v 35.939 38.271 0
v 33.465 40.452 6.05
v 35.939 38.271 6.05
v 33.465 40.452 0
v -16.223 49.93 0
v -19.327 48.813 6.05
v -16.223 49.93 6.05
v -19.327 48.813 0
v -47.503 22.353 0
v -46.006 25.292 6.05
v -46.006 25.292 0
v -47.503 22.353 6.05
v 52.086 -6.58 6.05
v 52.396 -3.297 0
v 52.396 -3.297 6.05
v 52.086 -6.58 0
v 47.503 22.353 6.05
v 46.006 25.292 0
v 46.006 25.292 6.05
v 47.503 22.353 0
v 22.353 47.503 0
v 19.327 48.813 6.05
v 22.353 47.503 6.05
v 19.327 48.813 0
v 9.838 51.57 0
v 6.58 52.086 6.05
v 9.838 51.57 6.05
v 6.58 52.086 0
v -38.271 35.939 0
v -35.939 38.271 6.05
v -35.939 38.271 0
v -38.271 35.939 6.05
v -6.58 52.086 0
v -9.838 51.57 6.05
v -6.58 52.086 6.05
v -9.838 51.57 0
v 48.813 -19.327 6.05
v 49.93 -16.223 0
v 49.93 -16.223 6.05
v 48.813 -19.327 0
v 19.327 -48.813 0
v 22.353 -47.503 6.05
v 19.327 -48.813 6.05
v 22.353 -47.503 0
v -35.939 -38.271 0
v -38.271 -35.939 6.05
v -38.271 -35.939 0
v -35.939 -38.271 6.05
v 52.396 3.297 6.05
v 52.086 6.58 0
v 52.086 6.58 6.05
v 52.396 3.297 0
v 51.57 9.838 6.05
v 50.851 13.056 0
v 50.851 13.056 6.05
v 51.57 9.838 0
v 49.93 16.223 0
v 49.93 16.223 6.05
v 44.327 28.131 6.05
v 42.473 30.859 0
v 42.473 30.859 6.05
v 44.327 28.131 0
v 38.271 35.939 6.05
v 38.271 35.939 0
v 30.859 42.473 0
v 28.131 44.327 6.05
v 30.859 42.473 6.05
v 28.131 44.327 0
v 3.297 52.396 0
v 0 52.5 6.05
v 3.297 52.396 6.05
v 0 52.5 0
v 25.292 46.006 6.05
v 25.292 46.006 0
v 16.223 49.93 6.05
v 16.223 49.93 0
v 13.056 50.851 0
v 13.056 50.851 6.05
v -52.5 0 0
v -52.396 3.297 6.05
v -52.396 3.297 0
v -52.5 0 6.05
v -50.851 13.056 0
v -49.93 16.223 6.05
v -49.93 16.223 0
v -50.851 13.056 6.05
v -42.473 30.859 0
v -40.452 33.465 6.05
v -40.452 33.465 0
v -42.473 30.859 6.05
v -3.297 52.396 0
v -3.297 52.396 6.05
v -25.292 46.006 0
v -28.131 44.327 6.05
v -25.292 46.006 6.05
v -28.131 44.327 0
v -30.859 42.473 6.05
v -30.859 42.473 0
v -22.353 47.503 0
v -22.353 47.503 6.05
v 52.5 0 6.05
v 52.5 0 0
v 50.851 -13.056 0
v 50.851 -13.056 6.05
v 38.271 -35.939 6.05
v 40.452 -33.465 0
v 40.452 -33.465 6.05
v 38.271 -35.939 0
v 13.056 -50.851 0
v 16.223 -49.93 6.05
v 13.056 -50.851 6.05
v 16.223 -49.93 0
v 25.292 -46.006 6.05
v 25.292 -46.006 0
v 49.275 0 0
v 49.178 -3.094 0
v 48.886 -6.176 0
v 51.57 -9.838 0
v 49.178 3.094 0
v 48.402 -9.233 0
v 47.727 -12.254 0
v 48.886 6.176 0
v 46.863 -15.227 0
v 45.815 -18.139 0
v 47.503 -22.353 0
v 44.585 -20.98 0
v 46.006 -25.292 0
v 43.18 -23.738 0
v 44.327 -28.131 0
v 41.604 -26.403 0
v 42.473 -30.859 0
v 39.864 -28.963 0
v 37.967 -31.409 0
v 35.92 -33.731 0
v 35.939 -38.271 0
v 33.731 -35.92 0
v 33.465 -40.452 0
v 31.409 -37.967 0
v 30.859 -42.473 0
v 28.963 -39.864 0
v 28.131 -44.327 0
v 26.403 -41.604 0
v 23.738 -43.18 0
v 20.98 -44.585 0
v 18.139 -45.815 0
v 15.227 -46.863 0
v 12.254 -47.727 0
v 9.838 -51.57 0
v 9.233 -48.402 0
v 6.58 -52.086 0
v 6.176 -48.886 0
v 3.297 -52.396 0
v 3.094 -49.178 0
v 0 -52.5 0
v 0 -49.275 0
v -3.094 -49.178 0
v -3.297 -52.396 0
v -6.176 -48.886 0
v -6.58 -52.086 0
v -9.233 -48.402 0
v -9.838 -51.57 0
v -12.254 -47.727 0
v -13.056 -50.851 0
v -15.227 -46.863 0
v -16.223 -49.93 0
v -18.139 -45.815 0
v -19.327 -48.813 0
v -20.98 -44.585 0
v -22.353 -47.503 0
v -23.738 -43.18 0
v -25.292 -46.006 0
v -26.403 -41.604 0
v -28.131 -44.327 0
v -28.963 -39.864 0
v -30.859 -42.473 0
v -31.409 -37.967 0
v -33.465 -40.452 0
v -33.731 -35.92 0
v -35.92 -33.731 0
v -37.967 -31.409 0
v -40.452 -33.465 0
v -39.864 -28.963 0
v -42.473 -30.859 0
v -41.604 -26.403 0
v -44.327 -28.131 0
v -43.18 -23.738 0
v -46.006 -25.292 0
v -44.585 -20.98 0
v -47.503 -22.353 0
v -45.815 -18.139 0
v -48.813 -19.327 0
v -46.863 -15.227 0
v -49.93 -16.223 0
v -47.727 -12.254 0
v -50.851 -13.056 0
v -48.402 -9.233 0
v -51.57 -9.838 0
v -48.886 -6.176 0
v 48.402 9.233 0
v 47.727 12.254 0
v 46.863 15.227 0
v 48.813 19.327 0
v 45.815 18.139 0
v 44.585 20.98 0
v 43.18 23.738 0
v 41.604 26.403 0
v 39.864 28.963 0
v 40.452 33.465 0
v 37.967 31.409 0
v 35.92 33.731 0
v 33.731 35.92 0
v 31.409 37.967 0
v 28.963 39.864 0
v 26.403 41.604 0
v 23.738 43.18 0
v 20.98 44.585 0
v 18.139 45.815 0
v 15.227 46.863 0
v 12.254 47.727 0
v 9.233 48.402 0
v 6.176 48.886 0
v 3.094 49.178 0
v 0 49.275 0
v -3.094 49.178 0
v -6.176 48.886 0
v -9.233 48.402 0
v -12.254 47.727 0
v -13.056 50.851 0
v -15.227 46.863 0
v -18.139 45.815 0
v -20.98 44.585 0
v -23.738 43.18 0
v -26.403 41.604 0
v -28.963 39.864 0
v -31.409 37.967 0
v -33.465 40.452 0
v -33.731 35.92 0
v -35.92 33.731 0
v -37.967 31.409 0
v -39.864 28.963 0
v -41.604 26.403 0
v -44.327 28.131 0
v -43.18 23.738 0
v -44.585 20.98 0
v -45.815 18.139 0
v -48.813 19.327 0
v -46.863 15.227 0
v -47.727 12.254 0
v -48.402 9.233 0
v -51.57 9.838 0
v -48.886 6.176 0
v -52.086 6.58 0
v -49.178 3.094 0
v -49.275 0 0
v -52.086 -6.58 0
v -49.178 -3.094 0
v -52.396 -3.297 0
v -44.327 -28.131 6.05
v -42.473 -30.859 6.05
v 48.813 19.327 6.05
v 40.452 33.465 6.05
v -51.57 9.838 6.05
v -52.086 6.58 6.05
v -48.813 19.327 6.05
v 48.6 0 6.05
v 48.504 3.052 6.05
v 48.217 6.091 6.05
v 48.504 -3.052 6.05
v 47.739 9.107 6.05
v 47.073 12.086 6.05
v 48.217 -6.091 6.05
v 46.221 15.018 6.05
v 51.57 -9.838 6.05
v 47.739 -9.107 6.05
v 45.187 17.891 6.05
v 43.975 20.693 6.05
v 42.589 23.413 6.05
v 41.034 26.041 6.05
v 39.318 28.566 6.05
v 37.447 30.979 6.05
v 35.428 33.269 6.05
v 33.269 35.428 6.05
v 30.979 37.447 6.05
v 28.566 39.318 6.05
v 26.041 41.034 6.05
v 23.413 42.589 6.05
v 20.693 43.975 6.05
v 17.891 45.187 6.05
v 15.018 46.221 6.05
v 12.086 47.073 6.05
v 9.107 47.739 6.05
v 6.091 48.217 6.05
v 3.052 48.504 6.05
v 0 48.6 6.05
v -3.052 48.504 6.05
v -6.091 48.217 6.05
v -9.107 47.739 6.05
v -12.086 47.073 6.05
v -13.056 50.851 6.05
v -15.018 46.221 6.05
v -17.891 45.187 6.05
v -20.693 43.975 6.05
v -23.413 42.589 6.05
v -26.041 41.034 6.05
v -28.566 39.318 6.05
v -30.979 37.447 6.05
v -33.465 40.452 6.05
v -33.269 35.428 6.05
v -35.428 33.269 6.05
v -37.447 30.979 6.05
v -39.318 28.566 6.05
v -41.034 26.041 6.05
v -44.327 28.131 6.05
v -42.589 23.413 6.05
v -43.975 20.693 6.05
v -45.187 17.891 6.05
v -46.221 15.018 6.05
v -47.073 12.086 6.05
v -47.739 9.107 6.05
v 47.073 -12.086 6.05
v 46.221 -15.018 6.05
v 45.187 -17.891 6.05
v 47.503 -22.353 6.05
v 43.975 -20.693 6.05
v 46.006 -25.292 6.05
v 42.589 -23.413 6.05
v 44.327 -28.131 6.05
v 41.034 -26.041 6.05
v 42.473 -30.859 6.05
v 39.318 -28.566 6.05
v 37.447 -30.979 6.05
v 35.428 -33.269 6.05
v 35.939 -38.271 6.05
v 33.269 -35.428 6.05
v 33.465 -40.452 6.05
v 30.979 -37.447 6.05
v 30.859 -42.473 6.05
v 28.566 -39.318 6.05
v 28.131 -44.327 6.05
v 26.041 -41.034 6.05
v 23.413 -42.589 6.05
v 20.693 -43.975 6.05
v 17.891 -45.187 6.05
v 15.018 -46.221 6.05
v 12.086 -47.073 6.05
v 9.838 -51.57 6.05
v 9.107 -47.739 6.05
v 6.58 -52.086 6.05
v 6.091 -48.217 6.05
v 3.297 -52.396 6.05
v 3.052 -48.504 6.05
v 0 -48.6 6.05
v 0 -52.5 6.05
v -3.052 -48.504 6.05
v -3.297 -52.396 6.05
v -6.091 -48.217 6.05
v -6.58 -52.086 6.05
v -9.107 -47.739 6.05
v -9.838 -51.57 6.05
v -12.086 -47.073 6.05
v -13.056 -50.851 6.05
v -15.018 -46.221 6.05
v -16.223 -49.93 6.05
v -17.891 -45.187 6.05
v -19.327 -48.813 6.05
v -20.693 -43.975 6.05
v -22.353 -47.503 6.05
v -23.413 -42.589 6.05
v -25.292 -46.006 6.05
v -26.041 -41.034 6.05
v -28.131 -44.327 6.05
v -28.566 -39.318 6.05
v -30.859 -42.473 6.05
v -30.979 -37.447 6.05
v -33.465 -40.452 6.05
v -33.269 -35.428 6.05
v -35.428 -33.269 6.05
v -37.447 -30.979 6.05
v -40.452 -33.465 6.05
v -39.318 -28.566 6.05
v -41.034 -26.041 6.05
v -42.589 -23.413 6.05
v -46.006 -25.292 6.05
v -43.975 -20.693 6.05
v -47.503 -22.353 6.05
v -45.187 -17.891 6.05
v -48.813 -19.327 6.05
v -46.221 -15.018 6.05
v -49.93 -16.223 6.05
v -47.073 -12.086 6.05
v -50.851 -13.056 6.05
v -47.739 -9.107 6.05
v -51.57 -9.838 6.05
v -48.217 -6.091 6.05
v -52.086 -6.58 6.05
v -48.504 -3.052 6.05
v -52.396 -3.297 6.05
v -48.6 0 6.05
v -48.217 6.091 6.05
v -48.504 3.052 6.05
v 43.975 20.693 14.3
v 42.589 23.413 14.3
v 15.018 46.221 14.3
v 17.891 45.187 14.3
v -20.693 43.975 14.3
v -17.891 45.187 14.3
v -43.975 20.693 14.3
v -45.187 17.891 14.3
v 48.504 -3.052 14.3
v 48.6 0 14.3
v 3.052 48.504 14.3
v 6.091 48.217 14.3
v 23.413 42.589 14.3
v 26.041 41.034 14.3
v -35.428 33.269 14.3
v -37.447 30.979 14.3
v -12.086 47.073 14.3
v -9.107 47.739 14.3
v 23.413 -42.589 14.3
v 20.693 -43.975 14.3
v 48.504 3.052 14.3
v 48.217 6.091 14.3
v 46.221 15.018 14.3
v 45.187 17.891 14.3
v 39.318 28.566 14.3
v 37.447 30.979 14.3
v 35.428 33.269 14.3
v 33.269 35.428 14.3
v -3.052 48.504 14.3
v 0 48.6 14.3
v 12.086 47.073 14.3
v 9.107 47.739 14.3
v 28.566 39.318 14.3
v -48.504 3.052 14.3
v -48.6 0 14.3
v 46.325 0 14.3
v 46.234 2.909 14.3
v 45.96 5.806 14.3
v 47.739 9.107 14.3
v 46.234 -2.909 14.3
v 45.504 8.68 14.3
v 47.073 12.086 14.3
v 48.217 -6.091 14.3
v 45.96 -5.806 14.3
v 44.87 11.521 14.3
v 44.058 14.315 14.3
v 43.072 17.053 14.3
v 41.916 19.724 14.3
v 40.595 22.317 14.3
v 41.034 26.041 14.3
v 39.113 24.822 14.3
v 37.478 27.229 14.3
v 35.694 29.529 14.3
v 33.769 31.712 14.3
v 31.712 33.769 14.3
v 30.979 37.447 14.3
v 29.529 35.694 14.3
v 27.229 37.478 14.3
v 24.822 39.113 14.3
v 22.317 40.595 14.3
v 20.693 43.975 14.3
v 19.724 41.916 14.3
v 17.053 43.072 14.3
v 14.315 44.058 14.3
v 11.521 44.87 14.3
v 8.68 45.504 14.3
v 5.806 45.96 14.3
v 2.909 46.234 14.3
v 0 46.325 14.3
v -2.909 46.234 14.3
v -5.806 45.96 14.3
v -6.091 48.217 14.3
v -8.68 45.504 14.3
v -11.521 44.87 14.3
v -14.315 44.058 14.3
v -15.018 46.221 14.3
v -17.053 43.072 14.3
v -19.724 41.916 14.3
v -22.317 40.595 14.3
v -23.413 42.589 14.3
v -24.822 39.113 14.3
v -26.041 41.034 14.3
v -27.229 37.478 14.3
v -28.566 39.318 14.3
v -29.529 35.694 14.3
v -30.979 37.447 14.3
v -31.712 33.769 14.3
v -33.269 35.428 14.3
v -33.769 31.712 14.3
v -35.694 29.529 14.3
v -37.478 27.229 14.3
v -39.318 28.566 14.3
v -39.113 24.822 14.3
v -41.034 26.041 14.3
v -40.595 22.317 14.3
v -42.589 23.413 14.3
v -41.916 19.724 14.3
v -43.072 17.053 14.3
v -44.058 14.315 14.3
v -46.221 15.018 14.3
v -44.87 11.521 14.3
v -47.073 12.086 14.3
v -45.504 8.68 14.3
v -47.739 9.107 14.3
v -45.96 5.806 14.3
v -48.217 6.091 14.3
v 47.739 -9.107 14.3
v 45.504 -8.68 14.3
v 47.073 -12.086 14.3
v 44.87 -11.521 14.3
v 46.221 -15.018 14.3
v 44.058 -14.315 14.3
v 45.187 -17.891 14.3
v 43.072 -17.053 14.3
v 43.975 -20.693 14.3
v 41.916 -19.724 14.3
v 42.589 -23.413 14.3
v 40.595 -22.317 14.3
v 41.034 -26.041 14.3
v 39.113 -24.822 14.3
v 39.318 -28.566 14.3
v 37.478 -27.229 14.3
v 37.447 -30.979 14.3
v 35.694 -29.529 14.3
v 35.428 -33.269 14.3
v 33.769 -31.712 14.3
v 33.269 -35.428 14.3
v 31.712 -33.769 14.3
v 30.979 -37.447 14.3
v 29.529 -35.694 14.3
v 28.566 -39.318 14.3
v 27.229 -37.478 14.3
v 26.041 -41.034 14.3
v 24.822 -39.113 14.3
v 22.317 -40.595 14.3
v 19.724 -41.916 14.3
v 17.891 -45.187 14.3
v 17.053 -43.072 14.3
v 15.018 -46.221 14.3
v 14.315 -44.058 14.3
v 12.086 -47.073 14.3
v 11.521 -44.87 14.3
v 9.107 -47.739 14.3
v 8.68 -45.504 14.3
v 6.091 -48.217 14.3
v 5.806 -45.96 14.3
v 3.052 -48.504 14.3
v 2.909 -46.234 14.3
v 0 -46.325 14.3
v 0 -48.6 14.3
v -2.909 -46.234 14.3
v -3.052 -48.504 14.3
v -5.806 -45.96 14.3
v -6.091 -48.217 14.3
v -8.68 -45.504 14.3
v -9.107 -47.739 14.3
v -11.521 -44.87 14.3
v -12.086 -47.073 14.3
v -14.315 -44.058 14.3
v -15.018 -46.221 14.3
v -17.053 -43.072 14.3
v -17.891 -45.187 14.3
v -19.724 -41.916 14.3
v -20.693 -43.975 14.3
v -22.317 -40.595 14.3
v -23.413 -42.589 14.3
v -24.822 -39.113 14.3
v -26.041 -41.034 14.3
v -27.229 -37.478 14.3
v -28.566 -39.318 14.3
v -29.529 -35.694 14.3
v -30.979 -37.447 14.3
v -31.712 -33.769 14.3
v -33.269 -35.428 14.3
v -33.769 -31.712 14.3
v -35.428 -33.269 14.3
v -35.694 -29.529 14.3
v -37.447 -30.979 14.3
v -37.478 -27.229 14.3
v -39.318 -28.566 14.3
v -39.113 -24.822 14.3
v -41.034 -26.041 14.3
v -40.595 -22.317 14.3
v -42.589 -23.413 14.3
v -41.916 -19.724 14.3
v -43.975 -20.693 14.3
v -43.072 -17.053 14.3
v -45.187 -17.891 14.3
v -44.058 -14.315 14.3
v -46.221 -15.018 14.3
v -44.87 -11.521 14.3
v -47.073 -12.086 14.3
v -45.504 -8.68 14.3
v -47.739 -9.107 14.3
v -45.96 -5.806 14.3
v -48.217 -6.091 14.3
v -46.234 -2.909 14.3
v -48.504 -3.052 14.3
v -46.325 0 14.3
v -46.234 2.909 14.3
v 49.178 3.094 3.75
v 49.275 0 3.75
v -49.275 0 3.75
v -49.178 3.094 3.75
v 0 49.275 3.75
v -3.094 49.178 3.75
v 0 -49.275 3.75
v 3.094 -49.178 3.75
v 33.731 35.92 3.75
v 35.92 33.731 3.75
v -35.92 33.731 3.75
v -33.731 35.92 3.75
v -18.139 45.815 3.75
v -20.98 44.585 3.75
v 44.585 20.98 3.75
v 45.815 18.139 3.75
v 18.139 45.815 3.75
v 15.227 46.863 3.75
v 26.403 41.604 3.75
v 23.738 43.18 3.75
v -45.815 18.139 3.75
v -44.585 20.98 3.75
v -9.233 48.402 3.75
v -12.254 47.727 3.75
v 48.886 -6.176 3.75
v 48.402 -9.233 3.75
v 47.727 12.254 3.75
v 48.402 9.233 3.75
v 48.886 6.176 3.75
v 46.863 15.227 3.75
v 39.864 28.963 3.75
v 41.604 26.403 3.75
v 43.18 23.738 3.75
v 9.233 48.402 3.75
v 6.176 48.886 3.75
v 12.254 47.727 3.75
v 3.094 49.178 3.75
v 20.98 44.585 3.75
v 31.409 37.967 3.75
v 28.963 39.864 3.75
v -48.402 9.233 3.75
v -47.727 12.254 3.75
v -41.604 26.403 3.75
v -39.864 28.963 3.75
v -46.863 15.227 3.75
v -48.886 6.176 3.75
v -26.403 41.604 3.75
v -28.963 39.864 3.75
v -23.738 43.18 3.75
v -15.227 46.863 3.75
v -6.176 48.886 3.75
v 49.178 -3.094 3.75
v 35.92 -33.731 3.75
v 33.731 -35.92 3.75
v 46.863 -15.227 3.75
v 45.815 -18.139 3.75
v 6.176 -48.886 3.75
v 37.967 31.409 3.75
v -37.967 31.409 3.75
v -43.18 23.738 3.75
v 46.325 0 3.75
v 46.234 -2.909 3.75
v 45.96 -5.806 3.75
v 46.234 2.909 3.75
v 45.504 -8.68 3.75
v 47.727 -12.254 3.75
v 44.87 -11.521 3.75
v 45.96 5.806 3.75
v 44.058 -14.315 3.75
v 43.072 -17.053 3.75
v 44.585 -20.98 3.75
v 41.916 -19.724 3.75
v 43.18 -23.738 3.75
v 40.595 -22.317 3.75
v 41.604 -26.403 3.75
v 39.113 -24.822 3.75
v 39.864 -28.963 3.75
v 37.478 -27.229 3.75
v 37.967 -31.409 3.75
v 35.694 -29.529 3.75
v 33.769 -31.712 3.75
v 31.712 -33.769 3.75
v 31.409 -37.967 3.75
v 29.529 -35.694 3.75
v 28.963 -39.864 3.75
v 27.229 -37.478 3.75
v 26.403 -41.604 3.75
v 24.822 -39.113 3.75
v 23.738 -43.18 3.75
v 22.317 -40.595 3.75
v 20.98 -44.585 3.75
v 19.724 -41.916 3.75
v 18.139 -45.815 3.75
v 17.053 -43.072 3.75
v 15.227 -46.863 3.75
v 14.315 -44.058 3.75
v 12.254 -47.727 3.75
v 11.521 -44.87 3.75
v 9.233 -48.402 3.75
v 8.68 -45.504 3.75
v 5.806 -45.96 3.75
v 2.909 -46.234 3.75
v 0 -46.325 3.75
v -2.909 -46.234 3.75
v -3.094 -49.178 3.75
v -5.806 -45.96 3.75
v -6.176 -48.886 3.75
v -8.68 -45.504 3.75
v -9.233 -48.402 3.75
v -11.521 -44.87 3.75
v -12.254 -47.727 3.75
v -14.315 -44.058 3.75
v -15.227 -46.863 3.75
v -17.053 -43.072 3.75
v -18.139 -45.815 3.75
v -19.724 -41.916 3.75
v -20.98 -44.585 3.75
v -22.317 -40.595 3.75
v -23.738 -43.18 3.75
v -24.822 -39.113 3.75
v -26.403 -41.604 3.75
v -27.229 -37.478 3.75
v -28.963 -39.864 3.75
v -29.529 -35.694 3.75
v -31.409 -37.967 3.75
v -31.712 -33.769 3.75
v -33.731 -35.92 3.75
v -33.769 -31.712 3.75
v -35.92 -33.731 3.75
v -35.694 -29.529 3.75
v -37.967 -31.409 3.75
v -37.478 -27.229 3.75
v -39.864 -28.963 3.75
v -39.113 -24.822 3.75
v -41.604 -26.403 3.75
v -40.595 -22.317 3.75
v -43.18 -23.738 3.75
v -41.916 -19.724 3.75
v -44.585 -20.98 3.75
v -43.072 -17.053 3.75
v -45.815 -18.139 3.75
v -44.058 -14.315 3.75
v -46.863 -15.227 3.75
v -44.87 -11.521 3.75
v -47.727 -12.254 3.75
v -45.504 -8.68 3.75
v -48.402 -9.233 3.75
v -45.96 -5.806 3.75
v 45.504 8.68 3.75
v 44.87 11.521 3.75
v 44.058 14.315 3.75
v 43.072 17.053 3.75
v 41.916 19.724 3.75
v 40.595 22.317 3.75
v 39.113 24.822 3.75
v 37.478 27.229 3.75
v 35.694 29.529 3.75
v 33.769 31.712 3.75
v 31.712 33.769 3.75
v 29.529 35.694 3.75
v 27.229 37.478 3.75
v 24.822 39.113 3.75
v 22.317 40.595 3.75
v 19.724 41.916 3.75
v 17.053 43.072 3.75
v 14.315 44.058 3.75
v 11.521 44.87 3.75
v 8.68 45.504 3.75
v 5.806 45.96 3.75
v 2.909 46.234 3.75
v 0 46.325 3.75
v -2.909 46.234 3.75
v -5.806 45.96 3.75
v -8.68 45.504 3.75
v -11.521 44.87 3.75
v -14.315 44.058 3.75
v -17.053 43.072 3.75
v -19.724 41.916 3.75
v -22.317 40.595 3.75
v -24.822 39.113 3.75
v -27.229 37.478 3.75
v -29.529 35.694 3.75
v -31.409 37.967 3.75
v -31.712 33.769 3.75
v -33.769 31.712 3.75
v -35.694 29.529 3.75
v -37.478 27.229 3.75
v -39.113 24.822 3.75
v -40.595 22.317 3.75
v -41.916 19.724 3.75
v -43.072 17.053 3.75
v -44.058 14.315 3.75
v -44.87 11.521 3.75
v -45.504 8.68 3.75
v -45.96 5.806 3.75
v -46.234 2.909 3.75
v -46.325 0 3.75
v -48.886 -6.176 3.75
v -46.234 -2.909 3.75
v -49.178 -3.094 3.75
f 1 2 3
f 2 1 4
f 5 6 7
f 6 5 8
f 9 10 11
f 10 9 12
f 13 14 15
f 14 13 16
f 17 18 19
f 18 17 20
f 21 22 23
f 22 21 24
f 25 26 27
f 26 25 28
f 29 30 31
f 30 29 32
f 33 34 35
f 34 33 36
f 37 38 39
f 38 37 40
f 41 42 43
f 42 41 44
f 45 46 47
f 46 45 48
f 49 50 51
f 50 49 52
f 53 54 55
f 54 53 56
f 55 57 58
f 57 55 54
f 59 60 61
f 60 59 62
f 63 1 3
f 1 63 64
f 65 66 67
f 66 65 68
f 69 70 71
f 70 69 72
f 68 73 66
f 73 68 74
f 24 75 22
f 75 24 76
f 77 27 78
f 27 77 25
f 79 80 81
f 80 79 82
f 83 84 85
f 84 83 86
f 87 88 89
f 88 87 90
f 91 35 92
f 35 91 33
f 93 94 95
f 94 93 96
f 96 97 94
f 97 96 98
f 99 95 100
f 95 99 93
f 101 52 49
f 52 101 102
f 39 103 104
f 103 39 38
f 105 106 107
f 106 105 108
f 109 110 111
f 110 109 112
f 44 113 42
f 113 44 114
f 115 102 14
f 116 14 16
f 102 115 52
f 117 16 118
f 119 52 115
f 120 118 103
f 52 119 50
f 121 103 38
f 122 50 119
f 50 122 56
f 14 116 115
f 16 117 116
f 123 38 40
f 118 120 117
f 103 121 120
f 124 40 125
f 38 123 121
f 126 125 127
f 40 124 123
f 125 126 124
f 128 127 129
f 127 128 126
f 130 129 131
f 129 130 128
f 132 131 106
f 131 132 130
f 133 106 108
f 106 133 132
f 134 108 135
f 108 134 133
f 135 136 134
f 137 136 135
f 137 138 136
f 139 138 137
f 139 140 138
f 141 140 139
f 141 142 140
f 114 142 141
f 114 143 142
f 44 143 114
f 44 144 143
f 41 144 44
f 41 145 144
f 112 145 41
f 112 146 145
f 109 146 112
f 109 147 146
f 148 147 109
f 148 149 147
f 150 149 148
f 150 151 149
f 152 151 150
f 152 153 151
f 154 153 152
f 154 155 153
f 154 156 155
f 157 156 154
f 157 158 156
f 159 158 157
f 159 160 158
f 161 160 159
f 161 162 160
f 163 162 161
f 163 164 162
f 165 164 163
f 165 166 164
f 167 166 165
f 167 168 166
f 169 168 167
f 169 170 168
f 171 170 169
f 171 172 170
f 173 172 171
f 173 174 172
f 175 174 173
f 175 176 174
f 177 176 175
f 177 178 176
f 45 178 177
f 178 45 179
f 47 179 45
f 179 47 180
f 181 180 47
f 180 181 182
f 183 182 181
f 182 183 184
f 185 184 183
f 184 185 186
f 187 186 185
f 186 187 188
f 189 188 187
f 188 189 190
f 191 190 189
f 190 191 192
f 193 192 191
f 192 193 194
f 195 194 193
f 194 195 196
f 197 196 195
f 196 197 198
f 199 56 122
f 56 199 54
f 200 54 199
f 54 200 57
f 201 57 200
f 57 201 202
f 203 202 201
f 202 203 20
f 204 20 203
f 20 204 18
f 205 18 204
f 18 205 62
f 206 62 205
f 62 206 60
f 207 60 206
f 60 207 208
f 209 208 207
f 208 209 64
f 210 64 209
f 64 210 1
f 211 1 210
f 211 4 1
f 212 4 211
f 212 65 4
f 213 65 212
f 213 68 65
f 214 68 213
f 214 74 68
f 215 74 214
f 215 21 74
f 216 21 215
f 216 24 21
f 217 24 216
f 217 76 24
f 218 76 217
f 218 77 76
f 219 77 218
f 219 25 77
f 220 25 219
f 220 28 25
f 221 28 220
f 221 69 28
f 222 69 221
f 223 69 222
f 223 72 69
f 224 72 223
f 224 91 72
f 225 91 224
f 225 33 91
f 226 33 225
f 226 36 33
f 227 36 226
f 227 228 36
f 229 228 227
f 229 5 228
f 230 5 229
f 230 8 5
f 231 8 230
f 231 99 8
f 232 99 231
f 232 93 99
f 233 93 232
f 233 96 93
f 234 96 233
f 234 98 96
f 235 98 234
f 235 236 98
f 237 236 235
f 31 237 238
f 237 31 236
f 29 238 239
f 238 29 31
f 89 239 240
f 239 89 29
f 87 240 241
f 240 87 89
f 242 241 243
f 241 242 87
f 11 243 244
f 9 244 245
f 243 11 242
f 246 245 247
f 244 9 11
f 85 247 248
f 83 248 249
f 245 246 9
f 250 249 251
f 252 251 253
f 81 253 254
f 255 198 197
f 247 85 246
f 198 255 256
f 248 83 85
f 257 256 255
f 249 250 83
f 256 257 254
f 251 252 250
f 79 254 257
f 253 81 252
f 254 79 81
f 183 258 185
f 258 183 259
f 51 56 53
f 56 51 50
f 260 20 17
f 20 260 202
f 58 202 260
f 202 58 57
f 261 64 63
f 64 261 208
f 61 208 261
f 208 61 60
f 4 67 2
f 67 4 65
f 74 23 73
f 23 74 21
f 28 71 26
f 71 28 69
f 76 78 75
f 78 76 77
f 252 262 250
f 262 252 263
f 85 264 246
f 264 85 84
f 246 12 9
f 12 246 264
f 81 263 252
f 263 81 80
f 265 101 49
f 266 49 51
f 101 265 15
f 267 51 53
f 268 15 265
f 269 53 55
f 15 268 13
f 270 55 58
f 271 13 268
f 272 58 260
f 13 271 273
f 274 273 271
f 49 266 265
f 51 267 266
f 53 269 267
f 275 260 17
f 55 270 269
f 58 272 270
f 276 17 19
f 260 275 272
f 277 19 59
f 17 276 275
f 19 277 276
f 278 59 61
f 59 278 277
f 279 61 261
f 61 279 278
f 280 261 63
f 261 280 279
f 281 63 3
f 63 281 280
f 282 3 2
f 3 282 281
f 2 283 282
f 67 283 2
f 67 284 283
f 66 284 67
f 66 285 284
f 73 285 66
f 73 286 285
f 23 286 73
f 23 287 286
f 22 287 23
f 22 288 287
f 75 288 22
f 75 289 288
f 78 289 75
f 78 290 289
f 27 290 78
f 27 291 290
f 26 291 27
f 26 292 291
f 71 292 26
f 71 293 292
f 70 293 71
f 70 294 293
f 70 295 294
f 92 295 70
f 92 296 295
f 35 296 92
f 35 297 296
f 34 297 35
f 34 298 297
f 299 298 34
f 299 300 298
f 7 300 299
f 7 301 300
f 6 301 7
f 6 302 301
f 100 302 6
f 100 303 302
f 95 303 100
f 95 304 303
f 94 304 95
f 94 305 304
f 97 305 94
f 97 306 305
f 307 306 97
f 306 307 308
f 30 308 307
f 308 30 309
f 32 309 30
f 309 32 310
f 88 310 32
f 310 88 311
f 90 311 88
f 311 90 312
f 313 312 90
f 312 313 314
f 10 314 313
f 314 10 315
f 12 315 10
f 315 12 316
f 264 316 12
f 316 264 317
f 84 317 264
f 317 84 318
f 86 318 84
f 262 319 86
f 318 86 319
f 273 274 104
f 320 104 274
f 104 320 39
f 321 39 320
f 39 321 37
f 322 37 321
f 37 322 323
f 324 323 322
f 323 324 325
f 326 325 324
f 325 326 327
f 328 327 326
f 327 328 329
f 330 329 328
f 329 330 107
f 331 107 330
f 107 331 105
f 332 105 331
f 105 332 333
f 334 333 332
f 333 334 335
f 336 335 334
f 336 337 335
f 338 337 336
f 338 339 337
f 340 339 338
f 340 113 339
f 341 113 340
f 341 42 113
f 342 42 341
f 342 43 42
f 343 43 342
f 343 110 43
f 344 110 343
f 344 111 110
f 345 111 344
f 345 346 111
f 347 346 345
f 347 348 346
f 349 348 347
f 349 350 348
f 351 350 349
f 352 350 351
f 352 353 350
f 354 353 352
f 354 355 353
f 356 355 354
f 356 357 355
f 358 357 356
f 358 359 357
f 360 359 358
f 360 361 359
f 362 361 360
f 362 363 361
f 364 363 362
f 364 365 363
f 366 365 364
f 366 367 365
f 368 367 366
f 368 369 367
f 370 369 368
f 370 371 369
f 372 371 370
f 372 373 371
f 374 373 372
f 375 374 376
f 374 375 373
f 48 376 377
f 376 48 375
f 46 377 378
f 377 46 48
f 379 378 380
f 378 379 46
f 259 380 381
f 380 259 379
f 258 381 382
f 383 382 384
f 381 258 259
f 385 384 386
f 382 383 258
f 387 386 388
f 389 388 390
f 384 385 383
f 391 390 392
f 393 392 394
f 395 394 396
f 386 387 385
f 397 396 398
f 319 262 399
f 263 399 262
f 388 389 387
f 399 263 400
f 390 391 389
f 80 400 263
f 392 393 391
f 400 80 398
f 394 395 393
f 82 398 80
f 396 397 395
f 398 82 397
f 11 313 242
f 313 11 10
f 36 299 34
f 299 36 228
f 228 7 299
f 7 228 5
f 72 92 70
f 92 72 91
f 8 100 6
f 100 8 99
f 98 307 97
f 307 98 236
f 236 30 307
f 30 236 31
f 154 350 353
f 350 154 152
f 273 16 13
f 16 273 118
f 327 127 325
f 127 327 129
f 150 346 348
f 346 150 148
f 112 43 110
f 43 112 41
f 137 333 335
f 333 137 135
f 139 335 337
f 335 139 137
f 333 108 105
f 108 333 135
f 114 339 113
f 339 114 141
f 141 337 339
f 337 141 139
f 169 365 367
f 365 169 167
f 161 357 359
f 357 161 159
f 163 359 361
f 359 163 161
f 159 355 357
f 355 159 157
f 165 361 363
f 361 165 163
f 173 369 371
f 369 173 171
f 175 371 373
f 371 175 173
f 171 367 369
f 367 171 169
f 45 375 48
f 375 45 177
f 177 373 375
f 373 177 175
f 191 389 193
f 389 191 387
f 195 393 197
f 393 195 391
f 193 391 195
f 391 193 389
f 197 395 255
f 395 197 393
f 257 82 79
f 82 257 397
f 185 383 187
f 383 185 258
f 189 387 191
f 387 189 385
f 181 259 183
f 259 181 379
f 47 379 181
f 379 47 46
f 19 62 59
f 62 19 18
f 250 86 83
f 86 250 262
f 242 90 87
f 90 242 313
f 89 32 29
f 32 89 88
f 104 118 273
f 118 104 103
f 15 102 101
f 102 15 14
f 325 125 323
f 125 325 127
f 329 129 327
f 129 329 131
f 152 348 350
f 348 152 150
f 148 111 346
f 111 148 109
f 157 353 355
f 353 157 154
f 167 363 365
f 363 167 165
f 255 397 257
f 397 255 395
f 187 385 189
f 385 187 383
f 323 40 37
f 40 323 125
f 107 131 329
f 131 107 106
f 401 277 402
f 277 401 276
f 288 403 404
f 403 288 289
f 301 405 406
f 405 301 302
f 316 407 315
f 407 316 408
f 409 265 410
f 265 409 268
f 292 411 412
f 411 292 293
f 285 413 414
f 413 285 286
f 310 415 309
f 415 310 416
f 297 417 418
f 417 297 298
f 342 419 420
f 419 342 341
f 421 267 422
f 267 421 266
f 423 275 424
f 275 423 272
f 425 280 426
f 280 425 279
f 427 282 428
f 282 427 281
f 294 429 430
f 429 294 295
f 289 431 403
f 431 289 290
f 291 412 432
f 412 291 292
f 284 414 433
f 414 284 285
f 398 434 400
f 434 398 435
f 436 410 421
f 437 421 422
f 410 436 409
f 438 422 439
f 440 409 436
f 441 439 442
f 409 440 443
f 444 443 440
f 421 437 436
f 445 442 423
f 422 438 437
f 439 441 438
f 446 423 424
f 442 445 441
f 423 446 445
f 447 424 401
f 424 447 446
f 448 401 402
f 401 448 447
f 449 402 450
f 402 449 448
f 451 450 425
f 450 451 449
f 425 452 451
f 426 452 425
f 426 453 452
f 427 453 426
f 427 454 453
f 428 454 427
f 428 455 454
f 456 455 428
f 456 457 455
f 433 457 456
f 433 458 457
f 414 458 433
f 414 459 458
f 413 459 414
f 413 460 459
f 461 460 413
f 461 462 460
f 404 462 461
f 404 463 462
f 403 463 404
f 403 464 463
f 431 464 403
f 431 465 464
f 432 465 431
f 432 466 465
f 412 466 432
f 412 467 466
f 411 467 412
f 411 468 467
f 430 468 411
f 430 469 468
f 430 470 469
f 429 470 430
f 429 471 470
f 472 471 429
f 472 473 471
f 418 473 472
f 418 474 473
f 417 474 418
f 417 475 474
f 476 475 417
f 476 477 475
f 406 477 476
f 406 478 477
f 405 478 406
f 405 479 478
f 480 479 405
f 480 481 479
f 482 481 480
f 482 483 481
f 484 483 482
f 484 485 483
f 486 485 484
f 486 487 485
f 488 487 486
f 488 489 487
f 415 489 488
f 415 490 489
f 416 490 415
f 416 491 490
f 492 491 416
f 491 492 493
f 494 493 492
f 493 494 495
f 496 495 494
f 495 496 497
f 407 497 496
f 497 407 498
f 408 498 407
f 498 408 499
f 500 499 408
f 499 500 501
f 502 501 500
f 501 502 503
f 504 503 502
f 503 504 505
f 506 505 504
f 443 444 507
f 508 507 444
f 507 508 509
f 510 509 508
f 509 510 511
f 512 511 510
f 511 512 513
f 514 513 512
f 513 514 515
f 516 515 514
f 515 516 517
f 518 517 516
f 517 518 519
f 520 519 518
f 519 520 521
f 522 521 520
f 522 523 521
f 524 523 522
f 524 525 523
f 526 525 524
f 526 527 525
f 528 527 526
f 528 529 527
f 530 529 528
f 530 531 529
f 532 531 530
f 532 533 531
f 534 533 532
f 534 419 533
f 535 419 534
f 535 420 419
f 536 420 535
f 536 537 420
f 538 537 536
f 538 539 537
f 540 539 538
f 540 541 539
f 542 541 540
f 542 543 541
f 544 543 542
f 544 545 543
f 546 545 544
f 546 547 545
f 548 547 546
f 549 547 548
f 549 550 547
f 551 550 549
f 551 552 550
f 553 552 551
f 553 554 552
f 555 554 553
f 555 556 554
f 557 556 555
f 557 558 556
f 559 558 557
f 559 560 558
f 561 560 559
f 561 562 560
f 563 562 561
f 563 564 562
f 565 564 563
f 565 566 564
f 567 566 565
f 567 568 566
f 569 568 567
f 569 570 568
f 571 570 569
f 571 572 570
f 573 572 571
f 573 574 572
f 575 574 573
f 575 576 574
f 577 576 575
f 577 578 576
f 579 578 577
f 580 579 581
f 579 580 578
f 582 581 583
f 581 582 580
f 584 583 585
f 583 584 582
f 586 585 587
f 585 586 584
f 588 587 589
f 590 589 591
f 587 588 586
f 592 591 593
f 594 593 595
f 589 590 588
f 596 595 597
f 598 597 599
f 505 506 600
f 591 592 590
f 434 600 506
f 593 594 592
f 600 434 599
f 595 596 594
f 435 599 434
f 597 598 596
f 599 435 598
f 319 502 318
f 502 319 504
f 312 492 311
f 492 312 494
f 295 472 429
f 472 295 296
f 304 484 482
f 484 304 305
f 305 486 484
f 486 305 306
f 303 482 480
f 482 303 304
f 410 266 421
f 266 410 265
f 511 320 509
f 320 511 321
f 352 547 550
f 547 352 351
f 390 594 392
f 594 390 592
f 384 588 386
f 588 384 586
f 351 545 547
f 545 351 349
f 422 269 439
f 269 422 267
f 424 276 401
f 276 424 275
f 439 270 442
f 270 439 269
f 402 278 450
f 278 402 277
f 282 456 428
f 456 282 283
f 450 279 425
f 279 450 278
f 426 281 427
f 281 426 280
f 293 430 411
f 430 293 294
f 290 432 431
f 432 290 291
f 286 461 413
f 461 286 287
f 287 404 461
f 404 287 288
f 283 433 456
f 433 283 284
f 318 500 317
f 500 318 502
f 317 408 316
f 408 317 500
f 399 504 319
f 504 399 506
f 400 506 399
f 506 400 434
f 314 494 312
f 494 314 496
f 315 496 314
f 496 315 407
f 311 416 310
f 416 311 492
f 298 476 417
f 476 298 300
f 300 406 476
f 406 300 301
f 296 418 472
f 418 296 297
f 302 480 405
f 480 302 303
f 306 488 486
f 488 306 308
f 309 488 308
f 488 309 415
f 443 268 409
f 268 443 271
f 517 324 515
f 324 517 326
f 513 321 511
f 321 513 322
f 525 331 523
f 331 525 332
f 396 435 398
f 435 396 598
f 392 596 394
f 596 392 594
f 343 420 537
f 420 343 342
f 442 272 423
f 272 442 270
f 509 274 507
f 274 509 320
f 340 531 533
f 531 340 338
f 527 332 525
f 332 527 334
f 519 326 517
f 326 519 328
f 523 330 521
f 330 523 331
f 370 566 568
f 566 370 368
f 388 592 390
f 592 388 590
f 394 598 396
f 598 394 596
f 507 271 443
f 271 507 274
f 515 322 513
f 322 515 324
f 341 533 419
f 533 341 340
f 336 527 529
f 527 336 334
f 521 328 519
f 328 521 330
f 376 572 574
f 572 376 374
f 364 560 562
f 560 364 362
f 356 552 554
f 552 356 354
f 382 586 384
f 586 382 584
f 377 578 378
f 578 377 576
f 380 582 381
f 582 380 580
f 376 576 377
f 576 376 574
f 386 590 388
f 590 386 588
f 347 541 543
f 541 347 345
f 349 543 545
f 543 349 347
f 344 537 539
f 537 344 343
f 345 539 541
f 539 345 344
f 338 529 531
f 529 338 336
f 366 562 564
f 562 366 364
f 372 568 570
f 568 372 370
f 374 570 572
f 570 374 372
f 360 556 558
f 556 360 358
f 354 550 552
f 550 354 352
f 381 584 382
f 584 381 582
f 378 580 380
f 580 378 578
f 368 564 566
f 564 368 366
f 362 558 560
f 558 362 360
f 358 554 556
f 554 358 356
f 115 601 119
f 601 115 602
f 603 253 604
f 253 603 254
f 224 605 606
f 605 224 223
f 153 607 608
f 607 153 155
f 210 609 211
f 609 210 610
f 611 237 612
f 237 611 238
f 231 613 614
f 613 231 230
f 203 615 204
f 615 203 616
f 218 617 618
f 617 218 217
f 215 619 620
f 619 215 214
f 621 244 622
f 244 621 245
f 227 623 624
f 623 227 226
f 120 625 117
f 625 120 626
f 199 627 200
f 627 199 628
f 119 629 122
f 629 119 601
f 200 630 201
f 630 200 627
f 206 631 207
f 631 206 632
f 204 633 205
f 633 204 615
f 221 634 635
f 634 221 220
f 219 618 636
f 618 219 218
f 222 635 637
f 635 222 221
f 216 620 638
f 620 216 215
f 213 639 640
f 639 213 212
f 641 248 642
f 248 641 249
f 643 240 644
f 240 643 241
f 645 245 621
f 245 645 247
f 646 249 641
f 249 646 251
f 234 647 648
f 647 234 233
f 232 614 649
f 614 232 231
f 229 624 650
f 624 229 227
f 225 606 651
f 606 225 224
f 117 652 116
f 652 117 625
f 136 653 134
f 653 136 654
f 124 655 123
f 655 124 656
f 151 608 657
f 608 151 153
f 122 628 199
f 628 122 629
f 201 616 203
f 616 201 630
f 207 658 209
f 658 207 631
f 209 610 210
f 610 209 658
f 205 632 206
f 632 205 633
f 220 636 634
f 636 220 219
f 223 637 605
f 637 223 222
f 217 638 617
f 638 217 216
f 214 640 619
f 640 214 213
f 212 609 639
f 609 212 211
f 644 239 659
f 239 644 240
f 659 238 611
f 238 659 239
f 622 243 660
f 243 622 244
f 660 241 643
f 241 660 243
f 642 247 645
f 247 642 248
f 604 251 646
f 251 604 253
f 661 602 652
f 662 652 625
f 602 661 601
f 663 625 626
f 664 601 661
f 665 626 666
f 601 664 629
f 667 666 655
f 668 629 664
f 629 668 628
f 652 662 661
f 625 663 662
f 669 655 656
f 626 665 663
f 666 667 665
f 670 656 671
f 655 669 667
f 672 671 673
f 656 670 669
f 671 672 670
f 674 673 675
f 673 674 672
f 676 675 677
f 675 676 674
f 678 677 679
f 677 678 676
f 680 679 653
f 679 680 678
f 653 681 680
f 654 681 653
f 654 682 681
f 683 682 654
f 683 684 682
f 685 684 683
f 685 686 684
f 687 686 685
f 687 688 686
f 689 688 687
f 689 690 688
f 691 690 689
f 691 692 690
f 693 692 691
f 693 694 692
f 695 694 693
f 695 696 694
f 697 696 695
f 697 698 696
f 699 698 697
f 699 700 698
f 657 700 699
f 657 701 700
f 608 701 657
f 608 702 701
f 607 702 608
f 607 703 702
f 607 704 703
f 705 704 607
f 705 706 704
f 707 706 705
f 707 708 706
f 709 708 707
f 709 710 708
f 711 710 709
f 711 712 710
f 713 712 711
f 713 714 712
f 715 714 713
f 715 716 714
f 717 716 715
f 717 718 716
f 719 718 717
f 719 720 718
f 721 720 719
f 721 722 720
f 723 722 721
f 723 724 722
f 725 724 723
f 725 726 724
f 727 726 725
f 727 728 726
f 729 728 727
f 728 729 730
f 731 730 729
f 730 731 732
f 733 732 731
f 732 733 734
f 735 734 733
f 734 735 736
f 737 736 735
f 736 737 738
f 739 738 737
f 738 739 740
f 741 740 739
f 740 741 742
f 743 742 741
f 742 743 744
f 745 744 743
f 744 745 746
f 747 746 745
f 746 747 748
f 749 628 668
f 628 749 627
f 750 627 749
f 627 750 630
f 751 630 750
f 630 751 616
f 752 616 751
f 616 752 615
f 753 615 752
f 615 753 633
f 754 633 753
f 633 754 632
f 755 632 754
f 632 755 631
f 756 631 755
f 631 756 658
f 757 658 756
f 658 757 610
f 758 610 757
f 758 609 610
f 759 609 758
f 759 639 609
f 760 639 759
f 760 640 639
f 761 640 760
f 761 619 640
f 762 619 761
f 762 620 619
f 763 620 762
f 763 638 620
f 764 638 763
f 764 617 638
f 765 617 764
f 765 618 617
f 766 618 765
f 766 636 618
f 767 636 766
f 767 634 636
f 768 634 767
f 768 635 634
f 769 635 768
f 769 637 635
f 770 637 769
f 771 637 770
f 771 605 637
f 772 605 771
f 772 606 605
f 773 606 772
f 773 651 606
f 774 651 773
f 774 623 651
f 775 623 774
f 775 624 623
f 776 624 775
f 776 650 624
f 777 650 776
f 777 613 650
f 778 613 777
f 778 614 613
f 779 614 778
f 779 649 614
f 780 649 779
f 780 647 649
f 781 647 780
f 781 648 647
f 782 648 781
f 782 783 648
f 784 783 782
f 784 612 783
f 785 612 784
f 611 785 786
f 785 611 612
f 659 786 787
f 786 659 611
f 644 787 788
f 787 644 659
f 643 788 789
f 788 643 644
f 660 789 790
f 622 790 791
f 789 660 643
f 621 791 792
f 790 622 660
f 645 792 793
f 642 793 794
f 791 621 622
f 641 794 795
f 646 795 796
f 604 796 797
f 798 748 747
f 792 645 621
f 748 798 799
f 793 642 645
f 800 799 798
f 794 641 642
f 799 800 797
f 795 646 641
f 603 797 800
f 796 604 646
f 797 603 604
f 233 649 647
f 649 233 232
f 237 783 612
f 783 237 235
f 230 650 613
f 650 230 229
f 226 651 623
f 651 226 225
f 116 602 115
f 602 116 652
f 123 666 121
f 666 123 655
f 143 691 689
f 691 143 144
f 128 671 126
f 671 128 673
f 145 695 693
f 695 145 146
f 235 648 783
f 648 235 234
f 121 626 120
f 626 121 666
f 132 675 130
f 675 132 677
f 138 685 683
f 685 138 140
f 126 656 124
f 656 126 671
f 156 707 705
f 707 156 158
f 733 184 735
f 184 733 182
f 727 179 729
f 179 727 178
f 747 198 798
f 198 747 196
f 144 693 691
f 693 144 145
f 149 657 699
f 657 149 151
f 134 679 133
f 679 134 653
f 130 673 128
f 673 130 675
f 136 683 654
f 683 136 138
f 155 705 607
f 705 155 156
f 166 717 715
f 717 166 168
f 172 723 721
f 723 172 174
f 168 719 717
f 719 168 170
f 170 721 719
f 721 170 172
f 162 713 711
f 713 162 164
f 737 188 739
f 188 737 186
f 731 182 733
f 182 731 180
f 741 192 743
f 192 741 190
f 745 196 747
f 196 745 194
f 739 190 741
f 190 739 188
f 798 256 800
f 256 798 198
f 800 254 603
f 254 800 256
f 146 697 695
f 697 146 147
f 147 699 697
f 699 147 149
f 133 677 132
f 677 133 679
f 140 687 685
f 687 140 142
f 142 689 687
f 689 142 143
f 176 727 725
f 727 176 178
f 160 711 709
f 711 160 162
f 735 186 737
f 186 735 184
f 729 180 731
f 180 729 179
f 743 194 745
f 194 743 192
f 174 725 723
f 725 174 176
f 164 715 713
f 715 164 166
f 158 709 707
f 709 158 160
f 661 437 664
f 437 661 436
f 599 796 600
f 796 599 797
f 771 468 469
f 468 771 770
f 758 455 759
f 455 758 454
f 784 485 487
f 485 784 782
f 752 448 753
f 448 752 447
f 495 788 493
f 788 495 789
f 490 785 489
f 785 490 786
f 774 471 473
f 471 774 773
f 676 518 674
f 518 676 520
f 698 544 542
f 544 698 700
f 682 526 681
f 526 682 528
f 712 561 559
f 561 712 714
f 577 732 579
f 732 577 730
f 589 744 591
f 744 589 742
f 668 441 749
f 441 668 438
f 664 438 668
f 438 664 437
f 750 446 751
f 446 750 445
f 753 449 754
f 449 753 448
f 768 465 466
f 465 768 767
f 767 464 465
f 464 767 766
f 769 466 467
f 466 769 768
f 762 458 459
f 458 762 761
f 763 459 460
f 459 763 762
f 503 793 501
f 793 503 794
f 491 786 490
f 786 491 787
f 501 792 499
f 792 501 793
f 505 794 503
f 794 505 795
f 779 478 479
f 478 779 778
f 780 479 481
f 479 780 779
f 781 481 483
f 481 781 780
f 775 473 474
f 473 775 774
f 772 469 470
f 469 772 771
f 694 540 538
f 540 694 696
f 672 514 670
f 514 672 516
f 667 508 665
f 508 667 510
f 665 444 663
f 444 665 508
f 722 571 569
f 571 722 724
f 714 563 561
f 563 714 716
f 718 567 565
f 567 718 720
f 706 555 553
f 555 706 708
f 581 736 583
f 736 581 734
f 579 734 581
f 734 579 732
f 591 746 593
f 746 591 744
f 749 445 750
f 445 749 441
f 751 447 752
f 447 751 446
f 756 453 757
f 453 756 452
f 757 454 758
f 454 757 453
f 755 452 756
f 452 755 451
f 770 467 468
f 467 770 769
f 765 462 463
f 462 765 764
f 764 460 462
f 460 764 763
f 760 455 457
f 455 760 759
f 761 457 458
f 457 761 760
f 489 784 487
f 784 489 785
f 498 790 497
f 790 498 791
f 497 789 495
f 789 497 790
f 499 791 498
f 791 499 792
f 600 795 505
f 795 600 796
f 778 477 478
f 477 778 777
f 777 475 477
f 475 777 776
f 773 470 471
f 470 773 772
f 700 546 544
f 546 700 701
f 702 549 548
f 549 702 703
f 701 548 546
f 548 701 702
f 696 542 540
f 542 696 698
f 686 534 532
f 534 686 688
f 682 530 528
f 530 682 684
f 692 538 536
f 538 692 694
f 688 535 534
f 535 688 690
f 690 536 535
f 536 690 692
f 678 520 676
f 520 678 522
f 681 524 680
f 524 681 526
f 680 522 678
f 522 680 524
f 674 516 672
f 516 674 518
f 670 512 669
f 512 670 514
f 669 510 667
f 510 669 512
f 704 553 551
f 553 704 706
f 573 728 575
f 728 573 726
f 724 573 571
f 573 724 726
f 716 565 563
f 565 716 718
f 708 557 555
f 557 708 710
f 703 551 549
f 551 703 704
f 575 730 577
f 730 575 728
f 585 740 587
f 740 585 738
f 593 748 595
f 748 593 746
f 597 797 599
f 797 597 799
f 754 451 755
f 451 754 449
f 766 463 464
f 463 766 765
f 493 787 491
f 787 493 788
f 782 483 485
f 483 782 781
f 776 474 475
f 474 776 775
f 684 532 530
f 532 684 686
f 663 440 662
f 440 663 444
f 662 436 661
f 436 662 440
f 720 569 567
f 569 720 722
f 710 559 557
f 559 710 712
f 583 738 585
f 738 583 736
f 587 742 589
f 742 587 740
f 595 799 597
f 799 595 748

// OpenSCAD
// ----- ----- ----- Declaração de Variáveis ----- ----- ----- //
res=100;
folga1=0.125;

rout1=105/2;
altout1=6.05;
rout2=97.2/2;
altout2=14.3-3.75;
rout3=98.55/2;
altout3=3.75;
rout4=92.65/2;
altout4=14.3;

altchao=3.05;
altsobe=8.1;

rchao=96.9/2;
rint=77.7/2;
rsobe=85.15/2;
rdep=39.5/2;

esp=1.75;
num=30;

rotate([0,0,0])
difference(){
    translate([0,0,0]){
        cylinder(altout1,rout1,rout1,$fn=res);
        translate([0,0,altout4-altout2])
        cylinder(altout2,rout2,rout2,$fn=res);
    }
    #cylinder(altout3,rout3,rout3,$fn=res);
    #cylinder(altout4,rout4,rout4,$fn=res);
}
